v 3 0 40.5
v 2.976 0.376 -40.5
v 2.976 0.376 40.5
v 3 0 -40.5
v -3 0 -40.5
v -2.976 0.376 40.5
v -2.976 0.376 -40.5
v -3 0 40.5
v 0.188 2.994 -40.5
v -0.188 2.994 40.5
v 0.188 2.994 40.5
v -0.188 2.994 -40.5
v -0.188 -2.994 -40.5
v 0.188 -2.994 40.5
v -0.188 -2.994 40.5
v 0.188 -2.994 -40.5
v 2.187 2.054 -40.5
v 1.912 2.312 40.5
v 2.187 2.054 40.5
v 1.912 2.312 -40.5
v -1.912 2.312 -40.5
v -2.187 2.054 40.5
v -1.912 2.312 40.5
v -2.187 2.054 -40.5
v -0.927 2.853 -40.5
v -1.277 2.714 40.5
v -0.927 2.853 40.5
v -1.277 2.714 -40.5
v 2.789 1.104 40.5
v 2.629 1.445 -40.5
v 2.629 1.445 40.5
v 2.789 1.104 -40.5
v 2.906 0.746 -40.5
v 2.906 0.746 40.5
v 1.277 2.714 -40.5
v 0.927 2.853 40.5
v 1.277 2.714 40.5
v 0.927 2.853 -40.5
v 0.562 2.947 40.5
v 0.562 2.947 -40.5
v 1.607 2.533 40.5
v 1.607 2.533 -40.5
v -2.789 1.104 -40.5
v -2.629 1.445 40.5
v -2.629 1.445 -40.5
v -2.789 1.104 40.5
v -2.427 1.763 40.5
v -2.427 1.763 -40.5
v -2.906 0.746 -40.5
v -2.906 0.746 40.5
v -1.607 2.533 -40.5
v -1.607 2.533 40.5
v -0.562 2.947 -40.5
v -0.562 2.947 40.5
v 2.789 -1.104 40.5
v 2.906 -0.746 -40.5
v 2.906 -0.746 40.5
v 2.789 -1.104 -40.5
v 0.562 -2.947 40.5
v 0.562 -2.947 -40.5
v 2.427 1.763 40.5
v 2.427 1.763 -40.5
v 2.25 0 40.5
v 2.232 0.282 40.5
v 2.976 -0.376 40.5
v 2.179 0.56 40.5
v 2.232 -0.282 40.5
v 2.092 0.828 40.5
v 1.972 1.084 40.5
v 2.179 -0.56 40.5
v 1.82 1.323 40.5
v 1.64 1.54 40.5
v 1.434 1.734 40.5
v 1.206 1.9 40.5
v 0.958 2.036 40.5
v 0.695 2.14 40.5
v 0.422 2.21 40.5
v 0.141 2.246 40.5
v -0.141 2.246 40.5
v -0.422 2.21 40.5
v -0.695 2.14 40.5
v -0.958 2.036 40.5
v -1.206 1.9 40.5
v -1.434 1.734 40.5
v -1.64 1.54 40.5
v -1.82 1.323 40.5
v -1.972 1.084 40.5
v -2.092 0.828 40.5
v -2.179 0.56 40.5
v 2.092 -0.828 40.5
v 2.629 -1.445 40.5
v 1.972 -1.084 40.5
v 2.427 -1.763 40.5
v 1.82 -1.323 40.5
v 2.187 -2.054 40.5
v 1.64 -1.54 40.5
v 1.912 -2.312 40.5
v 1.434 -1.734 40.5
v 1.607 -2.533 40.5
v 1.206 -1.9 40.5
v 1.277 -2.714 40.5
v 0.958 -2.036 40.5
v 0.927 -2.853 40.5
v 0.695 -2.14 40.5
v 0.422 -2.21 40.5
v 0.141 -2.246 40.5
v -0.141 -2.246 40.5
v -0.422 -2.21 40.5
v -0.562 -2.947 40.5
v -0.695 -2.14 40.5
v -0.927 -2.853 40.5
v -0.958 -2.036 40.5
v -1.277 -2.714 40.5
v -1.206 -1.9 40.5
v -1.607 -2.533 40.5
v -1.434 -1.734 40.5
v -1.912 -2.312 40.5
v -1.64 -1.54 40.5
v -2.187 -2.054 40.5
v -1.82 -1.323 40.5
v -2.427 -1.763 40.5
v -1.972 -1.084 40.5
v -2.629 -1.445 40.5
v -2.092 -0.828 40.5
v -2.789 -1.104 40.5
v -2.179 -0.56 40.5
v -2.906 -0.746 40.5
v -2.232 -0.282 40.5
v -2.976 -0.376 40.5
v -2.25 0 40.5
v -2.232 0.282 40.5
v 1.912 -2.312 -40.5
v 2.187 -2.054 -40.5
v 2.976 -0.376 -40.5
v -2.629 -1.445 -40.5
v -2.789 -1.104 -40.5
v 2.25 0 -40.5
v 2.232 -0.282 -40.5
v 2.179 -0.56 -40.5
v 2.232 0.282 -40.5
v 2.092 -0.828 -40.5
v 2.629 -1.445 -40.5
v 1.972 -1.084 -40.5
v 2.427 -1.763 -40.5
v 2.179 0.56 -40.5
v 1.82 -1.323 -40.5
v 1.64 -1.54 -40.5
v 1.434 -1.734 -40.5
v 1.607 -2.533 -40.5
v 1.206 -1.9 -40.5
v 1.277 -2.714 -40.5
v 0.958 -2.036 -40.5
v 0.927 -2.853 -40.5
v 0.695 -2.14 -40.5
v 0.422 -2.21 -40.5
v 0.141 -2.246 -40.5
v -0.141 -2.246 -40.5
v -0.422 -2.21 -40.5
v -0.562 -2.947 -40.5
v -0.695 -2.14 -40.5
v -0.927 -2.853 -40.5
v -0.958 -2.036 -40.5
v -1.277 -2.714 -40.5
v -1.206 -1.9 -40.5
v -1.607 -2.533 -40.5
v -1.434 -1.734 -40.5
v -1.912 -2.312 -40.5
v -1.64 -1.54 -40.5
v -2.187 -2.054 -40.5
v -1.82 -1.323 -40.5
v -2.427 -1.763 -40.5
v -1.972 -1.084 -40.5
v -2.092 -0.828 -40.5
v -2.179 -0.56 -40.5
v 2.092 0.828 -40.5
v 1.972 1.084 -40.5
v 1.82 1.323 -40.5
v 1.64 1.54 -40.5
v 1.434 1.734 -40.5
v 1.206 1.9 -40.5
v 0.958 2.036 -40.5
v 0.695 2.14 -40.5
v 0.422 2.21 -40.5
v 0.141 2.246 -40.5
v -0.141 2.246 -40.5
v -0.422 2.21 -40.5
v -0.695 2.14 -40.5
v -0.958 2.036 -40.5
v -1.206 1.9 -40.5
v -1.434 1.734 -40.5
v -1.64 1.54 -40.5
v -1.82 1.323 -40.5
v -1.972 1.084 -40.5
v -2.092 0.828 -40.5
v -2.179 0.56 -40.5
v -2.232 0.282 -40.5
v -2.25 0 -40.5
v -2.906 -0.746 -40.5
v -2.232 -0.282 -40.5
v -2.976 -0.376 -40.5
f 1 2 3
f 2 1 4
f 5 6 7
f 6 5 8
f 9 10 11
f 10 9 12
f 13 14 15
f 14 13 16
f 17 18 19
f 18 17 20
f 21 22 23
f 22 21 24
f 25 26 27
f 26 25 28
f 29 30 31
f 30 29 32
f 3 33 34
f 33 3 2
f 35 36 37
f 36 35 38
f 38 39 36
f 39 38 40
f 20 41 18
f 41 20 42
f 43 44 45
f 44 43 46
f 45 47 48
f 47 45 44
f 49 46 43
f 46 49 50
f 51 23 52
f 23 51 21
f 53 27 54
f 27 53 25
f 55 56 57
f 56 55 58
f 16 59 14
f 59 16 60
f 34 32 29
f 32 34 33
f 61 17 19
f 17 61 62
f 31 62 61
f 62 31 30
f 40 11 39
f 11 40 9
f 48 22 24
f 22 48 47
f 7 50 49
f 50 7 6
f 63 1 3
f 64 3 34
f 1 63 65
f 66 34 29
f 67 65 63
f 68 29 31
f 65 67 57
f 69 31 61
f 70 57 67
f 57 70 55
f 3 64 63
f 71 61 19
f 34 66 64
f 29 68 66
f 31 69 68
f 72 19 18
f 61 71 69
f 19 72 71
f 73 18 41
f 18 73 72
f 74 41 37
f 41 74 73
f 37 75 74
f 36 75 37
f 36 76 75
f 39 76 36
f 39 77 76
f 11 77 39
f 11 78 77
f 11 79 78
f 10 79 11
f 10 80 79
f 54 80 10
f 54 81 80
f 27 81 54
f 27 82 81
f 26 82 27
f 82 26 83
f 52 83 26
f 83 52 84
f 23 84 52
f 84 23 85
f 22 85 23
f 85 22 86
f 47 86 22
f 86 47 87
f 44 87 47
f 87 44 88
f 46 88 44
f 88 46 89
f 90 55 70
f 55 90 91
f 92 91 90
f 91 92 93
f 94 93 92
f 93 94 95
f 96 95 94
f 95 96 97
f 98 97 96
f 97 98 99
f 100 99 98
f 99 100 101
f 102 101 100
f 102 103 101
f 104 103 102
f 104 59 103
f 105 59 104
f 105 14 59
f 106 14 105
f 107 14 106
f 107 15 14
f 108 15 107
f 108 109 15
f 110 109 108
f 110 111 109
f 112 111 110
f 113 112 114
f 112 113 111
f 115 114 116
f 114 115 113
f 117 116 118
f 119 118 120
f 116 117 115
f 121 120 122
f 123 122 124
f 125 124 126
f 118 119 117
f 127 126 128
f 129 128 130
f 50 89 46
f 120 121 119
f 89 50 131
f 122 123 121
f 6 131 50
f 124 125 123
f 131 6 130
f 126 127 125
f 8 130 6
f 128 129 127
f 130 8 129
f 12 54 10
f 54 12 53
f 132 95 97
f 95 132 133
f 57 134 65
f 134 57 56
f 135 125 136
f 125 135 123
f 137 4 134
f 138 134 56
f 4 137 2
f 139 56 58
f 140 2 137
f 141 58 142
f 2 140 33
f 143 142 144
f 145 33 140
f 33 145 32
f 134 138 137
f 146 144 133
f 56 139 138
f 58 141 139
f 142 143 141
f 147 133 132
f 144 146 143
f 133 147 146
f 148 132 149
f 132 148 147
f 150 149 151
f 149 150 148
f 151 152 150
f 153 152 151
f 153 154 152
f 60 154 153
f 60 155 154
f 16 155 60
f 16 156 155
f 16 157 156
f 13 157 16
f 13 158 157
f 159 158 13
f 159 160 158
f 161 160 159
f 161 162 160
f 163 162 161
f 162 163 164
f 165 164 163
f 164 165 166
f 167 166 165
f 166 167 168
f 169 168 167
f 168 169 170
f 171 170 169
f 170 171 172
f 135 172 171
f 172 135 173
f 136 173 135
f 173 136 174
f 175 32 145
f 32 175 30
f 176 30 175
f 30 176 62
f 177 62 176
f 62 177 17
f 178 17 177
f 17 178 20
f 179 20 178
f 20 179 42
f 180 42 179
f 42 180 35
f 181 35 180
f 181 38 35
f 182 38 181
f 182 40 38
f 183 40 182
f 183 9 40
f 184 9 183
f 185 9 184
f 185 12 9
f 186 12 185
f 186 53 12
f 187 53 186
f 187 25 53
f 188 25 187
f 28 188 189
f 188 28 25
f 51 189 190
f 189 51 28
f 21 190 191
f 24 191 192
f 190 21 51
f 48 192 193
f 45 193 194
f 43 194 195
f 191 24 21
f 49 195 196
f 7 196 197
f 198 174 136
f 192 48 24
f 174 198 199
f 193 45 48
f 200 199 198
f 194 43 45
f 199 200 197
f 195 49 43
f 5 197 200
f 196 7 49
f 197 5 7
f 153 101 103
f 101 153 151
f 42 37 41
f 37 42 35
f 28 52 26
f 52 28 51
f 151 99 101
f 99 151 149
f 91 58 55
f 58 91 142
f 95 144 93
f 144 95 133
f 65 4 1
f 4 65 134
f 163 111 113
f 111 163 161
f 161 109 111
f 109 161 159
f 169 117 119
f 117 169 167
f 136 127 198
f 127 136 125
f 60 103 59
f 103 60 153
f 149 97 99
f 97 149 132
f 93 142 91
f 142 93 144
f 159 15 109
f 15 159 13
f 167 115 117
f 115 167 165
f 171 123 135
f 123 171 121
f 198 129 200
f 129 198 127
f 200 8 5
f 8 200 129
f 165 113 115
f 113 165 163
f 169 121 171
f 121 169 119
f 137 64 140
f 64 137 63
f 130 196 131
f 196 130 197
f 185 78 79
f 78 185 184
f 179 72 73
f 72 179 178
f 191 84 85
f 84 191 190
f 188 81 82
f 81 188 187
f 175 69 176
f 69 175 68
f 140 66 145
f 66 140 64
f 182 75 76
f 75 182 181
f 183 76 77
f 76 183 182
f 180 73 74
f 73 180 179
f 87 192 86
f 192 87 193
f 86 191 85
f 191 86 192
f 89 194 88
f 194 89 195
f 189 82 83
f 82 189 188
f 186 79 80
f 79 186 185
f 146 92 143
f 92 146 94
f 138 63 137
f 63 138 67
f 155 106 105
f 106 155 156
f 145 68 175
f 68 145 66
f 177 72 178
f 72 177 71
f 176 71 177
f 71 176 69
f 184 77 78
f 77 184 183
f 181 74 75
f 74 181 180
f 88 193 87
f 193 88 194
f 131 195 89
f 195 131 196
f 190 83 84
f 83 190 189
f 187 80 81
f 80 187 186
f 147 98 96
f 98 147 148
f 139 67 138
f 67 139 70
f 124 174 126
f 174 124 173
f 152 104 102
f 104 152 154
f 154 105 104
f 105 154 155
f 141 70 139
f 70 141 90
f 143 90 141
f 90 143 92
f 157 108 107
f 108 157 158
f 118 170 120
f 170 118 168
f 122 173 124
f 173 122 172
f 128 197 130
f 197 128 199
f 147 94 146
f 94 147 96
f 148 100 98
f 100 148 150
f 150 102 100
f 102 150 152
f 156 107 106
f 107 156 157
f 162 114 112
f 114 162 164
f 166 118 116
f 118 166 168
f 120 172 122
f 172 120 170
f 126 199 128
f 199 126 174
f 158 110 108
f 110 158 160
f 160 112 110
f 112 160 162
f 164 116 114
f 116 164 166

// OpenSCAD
$fn = 50;


difference() {
	union() {
		translate(v = [0, 0, -40.5000000000]) {
			cylinder(h = 81, r = 3.0000000000);
		}
	}
	union() {
		translate(v = [0, 0, -100.0000000000]) {
			cylinder(h = 200, r = 2.2500000000);
		}
	}
}
